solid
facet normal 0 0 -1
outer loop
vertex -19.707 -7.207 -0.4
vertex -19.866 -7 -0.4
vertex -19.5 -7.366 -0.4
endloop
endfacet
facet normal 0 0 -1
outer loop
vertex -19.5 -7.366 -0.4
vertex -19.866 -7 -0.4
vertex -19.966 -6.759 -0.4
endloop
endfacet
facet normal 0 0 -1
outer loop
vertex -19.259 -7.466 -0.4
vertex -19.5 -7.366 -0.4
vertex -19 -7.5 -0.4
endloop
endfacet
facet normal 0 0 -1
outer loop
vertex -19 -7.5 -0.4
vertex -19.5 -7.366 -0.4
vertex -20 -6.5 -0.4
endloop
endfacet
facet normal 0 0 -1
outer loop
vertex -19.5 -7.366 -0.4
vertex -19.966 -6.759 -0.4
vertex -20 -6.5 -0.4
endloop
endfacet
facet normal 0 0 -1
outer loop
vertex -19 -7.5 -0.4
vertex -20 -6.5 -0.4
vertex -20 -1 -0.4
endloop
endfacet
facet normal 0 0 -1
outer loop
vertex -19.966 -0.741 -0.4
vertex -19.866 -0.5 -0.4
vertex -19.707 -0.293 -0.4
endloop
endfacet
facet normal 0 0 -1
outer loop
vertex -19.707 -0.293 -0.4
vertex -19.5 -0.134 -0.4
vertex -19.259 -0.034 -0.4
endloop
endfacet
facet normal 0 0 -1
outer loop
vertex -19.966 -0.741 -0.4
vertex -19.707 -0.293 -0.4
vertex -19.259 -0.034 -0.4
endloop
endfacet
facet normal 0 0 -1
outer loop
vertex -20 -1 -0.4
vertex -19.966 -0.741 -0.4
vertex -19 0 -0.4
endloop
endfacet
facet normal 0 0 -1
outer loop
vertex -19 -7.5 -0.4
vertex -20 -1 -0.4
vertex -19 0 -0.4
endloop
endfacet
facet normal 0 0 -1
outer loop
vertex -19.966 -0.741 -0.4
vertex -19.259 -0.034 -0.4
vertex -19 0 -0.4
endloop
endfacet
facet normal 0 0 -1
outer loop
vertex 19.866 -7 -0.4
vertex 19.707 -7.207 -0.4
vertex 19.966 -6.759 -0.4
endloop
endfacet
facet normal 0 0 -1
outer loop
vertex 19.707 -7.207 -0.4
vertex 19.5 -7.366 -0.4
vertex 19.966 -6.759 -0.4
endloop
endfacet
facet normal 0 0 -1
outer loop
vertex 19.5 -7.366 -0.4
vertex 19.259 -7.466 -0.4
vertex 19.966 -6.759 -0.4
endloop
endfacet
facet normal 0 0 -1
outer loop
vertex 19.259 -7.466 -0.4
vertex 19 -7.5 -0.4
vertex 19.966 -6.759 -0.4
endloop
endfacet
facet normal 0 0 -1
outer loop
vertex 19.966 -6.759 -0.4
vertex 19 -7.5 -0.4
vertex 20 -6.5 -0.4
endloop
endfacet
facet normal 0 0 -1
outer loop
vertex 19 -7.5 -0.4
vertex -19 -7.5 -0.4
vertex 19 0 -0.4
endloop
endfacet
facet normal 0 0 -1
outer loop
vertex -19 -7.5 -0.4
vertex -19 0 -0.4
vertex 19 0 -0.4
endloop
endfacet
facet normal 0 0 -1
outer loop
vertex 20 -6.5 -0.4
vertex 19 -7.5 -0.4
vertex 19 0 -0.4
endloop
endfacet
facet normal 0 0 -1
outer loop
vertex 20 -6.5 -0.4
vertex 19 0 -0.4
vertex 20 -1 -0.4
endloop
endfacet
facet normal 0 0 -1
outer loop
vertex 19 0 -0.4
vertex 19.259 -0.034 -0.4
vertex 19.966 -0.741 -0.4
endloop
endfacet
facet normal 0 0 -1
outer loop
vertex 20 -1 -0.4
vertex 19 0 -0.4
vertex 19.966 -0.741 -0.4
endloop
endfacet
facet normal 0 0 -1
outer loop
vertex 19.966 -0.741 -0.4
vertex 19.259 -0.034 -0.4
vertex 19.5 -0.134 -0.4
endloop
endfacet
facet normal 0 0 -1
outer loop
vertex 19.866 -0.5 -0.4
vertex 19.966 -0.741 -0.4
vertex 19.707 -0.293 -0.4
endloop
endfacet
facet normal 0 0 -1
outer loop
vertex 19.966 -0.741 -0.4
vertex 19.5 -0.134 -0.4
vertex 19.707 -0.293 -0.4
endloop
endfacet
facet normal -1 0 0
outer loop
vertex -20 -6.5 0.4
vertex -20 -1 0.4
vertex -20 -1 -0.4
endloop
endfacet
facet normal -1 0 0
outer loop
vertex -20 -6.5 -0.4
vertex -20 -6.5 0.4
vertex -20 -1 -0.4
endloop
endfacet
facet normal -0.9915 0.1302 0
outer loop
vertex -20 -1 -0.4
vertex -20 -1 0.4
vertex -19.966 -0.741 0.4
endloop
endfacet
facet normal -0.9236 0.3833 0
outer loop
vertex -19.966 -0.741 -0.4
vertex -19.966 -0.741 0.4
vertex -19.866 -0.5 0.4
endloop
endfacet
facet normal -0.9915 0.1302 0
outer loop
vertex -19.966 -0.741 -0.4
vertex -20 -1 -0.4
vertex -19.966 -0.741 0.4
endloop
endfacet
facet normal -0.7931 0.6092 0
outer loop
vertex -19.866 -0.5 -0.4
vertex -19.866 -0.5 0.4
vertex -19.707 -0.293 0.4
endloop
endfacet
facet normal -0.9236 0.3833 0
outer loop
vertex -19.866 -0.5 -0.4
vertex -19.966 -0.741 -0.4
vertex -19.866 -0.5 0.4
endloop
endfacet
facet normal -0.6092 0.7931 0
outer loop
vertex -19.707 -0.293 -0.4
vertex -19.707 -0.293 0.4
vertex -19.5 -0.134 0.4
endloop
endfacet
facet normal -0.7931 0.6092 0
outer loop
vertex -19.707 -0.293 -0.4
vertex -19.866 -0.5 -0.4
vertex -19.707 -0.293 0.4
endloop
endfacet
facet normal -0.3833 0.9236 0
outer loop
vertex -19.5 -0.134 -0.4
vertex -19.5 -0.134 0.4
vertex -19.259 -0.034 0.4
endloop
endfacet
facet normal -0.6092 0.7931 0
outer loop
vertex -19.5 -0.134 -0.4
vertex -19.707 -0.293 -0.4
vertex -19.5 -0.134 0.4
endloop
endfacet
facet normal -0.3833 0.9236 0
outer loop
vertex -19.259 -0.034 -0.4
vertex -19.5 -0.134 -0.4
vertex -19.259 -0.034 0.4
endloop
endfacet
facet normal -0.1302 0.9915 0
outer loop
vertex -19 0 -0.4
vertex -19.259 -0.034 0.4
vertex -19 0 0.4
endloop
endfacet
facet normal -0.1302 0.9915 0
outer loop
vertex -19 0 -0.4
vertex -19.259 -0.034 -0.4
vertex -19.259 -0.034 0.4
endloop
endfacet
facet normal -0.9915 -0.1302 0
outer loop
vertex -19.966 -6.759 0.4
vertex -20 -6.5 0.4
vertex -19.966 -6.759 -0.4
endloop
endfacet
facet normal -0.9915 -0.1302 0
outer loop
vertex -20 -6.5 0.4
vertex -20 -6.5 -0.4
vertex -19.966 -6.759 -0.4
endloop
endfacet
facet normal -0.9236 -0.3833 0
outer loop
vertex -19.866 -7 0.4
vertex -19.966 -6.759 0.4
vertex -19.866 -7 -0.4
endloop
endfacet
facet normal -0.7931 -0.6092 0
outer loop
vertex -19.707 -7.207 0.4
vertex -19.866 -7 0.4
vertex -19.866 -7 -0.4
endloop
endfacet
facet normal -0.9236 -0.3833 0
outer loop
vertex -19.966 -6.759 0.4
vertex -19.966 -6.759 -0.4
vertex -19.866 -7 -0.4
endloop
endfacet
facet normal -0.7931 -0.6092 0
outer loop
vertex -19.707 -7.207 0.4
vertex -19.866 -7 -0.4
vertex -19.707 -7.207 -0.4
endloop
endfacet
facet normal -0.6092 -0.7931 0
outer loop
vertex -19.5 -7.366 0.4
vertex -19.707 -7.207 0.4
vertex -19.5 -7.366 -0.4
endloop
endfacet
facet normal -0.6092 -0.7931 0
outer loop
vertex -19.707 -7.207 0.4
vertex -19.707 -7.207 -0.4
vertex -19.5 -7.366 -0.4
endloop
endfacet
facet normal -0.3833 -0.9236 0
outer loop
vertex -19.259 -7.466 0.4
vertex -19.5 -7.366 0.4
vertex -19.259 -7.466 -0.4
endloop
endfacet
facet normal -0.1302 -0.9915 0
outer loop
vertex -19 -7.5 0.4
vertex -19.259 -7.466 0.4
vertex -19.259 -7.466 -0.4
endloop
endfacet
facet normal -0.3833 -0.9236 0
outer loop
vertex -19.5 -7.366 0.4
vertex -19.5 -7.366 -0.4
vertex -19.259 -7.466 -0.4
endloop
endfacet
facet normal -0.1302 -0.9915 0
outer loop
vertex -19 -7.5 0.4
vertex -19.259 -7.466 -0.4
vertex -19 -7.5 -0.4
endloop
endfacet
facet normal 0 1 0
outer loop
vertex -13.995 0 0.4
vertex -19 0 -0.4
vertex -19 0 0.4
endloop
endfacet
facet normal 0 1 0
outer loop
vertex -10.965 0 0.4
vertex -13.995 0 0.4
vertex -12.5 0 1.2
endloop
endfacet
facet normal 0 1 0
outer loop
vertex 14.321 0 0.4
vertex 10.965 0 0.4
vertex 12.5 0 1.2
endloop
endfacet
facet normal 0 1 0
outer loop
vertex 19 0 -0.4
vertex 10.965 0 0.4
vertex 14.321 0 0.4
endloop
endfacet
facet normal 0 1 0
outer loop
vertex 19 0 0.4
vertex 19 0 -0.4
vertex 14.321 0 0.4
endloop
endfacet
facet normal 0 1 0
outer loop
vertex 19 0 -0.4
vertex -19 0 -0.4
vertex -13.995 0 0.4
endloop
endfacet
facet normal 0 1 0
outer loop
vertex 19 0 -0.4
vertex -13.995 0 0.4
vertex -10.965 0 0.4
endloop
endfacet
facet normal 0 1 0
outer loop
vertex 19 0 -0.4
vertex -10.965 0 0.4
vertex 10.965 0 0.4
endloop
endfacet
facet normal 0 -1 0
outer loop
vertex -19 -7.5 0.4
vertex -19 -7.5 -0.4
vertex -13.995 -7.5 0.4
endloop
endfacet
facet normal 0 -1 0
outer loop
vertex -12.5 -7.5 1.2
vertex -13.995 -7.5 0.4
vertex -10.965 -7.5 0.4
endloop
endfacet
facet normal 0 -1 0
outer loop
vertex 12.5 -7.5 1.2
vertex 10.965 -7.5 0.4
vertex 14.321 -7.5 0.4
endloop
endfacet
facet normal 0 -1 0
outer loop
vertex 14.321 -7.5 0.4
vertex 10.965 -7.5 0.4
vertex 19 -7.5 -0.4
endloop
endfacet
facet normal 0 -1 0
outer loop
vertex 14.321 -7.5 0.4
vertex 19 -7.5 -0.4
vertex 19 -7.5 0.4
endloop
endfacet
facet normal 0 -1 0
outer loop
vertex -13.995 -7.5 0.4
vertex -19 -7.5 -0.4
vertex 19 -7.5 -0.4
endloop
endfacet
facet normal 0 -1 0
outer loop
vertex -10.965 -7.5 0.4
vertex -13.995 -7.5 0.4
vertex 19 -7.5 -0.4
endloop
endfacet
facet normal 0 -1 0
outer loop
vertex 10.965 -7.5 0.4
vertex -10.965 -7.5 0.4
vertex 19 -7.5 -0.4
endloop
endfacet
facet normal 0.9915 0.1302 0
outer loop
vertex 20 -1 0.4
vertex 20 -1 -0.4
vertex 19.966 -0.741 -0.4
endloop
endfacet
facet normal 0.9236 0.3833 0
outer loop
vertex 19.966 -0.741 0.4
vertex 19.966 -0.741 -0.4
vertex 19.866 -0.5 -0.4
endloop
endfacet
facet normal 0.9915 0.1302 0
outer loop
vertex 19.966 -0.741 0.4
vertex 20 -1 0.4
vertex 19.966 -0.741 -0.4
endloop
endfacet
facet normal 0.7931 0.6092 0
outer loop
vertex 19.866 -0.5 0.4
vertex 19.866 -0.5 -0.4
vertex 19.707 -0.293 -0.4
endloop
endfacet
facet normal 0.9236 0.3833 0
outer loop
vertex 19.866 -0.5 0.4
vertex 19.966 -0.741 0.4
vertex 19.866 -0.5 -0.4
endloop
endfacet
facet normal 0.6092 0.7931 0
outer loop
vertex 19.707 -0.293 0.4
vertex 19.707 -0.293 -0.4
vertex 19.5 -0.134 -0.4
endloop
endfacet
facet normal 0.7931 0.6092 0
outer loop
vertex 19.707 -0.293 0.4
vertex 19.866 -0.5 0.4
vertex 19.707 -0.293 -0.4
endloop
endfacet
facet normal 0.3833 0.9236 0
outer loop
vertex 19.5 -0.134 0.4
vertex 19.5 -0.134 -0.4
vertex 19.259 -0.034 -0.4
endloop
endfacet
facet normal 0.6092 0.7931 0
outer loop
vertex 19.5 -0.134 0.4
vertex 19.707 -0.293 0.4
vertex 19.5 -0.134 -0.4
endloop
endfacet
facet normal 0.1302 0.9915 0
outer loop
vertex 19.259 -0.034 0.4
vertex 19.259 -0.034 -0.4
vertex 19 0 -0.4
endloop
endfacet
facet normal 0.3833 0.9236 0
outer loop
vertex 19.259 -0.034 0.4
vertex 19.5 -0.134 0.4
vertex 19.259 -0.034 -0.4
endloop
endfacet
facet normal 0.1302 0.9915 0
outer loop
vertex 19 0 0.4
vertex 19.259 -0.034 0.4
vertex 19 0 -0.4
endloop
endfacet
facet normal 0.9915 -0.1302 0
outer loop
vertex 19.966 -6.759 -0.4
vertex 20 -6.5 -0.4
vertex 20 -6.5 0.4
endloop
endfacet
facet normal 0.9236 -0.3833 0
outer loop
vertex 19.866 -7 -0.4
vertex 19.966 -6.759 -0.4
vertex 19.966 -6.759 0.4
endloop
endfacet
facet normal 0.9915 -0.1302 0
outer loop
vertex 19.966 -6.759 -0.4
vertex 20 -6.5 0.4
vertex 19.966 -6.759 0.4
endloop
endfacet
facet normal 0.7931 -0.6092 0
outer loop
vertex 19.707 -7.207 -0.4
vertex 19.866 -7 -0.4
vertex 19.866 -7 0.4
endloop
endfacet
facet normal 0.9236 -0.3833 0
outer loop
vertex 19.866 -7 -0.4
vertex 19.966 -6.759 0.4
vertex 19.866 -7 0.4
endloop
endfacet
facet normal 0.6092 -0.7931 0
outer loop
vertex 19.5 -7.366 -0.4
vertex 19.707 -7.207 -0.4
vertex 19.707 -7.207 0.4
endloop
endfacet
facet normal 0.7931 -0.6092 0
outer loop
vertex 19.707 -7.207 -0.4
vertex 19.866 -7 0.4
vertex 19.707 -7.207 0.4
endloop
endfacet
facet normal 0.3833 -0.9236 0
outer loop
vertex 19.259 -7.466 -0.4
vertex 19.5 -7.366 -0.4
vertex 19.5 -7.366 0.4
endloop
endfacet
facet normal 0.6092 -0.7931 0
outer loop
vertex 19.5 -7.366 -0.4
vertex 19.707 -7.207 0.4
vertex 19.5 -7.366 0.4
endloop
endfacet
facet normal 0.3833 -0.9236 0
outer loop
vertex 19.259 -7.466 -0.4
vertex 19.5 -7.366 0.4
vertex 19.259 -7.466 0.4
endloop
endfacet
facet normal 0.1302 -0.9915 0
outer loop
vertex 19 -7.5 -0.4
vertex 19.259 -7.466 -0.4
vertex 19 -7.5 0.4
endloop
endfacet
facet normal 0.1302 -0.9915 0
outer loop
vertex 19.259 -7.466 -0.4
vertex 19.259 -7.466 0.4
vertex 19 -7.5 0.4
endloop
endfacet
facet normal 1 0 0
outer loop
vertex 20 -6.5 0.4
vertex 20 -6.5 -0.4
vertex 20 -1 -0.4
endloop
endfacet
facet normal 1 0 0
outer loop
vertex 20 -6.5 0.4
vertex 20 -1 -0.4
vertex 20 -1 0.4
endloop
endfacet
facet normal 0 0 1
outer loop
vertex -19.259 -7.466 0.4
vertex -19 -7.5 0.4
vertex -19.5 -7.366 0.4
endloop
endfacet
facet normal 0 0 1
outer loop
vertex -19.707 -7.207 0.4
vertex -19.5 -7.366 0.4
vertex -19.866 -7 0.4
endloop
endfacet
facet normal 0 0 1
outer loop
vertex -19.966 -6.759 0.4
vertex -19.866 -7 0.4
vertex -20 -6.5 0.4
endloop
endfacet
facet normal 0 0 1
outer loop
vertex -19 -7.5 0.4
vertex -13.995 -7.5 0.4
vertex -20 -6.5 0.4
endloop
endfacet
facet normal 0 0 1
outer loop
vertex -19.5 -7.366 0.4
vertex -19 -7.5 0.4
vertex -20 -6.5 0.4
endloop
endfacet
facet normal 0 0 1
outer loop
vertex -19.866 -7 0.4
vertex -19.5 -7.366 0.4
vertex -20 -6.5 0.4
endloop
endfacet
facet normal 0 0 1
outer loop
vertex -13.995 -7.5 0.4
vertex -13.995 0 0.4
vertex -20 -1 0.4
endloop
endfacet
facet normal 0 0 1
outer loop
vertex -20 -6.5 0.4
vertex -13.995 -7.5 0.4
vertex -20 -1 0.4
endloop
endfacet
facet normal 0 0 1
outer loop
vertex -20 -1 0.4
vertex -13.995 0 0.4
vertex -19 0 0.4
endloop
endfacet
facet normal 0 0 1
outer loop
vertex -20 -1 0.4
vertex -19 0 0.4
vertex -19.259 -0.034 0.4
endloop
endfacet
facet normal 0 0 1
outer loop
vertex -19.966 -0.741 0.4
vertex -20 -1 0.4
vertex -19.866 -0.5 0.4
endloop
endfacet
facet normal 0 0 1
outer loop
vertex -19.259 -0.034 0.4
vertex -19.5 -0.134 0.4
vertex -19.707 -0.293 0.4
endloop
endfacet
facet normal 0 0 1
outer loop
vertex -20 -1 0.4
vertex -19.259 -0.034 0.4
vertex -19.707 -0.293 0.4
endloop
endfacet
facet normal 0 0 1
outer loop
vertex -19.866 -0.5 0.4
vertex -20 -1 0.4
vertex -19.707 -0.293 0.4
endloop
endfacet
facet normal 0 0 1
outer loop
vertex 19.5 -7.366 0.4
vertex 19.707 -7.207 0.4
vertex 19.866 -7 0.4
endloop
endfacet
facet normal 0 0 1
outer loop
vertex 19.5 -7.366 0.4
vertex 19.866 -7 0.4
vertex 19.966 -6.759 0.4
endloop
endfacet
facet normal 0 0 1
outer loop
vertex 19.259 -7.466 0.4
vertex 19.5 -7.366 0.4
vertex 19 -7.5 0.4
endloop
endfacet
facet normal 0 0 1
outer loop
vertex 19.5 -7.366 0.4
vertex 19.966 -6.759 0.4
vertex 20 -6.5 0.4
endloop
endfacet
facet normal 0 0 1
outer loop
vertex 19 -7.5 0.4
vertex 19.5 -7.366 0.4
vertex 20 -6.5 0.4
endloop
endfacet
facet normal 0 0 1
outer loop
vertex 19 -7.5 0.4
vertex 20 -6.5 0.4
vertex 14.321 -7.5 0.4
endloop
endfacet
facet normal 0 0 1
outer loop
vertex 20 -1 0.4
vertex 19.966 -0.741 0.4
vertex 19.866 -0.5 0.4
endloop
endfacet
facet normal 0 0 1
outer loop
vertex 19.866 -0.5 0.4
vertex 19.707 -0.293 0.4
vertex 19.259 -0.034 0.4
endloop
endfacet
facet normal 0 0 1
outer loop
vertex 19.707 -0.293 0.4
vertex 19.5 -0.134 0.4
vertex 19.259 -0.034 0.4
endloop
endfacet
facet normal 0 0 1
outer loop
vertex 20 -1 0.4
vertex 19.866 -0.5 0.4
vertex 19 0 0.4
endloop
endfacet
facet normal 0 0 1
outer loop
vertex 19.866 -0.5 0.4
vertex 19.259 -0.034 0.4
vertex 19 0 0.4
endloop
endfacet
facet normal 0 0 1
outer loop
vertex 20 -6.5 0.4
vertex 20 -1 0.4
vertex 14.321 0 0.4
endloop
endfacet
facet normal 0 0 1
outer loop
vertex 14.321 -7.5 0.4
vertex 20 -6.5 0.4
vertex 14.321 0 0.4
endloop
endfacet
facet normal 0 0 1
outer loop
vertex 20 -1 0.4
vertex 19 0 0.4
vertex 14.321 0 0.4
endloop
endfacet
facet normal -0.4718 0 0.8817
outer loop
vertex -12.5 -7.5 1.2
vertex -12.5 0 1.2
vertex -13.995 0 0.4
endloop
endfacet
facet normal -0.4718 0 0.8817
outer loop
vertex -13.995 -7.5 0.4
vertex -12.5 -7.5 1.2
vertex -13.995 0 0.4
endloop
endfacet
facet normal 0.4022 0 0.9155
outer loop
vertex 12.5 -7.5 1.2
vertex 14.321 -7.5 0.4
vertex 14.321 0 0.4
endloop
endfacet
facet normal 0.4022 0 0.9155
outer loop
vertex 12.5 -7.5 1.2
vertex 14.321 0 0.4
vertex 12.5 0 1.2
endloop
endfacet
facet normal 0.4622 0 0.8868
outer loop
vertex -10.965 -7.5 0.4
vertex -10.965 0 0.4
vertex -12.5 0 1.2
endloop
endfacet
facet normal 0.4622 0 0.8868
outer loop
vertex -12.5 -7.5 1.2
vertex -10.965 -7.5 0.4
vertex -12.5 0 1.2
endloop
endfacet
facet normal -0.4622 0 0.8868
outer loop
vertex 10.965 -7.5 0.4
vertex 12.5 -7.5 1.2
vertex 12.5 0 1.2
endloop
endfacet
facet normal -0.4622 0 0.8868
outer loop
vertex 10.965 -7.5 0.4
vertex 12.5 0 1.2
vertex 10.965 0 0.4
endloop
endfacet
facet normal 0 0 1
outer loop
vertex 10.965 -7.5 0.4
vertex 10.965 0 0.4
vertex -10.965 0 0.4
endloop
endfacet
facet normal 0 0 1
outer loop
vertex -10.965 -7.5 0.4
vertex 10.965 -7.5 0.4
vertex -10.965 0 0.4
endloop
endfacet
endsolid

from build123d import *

# Parameters (mm, degrees)
PAD_DEPTH = 7.5
FILLET_R  = 1


with BuildPart() as part:
    # Sketch → Pad (new body)
    with BuildSketch(Plane.XZ):
        Polygon((-20, -0.4), (20, -0.4), (20, 0.4), (14.320997, 0.4), (12.5, 1.2), (10.965424, 0.4), (-10.965424, 0.4), (-12.5, 1.2), (-13.994693, 0.4), (-20, 0.4), align=None)
    extrude(amount=PAD_DEPTH)

    # Fillet
    fillet_edges = [part.edges().sort_by_distance(p)[0] for p in [
        (-20, -7.5, 0),
        (-20, 0, 0),
        (20, 0, 0),
        (20, -7.5, 0),
    ]]
    fillet(fillet_edges, radius=FILLET_R)


solid = part.part
